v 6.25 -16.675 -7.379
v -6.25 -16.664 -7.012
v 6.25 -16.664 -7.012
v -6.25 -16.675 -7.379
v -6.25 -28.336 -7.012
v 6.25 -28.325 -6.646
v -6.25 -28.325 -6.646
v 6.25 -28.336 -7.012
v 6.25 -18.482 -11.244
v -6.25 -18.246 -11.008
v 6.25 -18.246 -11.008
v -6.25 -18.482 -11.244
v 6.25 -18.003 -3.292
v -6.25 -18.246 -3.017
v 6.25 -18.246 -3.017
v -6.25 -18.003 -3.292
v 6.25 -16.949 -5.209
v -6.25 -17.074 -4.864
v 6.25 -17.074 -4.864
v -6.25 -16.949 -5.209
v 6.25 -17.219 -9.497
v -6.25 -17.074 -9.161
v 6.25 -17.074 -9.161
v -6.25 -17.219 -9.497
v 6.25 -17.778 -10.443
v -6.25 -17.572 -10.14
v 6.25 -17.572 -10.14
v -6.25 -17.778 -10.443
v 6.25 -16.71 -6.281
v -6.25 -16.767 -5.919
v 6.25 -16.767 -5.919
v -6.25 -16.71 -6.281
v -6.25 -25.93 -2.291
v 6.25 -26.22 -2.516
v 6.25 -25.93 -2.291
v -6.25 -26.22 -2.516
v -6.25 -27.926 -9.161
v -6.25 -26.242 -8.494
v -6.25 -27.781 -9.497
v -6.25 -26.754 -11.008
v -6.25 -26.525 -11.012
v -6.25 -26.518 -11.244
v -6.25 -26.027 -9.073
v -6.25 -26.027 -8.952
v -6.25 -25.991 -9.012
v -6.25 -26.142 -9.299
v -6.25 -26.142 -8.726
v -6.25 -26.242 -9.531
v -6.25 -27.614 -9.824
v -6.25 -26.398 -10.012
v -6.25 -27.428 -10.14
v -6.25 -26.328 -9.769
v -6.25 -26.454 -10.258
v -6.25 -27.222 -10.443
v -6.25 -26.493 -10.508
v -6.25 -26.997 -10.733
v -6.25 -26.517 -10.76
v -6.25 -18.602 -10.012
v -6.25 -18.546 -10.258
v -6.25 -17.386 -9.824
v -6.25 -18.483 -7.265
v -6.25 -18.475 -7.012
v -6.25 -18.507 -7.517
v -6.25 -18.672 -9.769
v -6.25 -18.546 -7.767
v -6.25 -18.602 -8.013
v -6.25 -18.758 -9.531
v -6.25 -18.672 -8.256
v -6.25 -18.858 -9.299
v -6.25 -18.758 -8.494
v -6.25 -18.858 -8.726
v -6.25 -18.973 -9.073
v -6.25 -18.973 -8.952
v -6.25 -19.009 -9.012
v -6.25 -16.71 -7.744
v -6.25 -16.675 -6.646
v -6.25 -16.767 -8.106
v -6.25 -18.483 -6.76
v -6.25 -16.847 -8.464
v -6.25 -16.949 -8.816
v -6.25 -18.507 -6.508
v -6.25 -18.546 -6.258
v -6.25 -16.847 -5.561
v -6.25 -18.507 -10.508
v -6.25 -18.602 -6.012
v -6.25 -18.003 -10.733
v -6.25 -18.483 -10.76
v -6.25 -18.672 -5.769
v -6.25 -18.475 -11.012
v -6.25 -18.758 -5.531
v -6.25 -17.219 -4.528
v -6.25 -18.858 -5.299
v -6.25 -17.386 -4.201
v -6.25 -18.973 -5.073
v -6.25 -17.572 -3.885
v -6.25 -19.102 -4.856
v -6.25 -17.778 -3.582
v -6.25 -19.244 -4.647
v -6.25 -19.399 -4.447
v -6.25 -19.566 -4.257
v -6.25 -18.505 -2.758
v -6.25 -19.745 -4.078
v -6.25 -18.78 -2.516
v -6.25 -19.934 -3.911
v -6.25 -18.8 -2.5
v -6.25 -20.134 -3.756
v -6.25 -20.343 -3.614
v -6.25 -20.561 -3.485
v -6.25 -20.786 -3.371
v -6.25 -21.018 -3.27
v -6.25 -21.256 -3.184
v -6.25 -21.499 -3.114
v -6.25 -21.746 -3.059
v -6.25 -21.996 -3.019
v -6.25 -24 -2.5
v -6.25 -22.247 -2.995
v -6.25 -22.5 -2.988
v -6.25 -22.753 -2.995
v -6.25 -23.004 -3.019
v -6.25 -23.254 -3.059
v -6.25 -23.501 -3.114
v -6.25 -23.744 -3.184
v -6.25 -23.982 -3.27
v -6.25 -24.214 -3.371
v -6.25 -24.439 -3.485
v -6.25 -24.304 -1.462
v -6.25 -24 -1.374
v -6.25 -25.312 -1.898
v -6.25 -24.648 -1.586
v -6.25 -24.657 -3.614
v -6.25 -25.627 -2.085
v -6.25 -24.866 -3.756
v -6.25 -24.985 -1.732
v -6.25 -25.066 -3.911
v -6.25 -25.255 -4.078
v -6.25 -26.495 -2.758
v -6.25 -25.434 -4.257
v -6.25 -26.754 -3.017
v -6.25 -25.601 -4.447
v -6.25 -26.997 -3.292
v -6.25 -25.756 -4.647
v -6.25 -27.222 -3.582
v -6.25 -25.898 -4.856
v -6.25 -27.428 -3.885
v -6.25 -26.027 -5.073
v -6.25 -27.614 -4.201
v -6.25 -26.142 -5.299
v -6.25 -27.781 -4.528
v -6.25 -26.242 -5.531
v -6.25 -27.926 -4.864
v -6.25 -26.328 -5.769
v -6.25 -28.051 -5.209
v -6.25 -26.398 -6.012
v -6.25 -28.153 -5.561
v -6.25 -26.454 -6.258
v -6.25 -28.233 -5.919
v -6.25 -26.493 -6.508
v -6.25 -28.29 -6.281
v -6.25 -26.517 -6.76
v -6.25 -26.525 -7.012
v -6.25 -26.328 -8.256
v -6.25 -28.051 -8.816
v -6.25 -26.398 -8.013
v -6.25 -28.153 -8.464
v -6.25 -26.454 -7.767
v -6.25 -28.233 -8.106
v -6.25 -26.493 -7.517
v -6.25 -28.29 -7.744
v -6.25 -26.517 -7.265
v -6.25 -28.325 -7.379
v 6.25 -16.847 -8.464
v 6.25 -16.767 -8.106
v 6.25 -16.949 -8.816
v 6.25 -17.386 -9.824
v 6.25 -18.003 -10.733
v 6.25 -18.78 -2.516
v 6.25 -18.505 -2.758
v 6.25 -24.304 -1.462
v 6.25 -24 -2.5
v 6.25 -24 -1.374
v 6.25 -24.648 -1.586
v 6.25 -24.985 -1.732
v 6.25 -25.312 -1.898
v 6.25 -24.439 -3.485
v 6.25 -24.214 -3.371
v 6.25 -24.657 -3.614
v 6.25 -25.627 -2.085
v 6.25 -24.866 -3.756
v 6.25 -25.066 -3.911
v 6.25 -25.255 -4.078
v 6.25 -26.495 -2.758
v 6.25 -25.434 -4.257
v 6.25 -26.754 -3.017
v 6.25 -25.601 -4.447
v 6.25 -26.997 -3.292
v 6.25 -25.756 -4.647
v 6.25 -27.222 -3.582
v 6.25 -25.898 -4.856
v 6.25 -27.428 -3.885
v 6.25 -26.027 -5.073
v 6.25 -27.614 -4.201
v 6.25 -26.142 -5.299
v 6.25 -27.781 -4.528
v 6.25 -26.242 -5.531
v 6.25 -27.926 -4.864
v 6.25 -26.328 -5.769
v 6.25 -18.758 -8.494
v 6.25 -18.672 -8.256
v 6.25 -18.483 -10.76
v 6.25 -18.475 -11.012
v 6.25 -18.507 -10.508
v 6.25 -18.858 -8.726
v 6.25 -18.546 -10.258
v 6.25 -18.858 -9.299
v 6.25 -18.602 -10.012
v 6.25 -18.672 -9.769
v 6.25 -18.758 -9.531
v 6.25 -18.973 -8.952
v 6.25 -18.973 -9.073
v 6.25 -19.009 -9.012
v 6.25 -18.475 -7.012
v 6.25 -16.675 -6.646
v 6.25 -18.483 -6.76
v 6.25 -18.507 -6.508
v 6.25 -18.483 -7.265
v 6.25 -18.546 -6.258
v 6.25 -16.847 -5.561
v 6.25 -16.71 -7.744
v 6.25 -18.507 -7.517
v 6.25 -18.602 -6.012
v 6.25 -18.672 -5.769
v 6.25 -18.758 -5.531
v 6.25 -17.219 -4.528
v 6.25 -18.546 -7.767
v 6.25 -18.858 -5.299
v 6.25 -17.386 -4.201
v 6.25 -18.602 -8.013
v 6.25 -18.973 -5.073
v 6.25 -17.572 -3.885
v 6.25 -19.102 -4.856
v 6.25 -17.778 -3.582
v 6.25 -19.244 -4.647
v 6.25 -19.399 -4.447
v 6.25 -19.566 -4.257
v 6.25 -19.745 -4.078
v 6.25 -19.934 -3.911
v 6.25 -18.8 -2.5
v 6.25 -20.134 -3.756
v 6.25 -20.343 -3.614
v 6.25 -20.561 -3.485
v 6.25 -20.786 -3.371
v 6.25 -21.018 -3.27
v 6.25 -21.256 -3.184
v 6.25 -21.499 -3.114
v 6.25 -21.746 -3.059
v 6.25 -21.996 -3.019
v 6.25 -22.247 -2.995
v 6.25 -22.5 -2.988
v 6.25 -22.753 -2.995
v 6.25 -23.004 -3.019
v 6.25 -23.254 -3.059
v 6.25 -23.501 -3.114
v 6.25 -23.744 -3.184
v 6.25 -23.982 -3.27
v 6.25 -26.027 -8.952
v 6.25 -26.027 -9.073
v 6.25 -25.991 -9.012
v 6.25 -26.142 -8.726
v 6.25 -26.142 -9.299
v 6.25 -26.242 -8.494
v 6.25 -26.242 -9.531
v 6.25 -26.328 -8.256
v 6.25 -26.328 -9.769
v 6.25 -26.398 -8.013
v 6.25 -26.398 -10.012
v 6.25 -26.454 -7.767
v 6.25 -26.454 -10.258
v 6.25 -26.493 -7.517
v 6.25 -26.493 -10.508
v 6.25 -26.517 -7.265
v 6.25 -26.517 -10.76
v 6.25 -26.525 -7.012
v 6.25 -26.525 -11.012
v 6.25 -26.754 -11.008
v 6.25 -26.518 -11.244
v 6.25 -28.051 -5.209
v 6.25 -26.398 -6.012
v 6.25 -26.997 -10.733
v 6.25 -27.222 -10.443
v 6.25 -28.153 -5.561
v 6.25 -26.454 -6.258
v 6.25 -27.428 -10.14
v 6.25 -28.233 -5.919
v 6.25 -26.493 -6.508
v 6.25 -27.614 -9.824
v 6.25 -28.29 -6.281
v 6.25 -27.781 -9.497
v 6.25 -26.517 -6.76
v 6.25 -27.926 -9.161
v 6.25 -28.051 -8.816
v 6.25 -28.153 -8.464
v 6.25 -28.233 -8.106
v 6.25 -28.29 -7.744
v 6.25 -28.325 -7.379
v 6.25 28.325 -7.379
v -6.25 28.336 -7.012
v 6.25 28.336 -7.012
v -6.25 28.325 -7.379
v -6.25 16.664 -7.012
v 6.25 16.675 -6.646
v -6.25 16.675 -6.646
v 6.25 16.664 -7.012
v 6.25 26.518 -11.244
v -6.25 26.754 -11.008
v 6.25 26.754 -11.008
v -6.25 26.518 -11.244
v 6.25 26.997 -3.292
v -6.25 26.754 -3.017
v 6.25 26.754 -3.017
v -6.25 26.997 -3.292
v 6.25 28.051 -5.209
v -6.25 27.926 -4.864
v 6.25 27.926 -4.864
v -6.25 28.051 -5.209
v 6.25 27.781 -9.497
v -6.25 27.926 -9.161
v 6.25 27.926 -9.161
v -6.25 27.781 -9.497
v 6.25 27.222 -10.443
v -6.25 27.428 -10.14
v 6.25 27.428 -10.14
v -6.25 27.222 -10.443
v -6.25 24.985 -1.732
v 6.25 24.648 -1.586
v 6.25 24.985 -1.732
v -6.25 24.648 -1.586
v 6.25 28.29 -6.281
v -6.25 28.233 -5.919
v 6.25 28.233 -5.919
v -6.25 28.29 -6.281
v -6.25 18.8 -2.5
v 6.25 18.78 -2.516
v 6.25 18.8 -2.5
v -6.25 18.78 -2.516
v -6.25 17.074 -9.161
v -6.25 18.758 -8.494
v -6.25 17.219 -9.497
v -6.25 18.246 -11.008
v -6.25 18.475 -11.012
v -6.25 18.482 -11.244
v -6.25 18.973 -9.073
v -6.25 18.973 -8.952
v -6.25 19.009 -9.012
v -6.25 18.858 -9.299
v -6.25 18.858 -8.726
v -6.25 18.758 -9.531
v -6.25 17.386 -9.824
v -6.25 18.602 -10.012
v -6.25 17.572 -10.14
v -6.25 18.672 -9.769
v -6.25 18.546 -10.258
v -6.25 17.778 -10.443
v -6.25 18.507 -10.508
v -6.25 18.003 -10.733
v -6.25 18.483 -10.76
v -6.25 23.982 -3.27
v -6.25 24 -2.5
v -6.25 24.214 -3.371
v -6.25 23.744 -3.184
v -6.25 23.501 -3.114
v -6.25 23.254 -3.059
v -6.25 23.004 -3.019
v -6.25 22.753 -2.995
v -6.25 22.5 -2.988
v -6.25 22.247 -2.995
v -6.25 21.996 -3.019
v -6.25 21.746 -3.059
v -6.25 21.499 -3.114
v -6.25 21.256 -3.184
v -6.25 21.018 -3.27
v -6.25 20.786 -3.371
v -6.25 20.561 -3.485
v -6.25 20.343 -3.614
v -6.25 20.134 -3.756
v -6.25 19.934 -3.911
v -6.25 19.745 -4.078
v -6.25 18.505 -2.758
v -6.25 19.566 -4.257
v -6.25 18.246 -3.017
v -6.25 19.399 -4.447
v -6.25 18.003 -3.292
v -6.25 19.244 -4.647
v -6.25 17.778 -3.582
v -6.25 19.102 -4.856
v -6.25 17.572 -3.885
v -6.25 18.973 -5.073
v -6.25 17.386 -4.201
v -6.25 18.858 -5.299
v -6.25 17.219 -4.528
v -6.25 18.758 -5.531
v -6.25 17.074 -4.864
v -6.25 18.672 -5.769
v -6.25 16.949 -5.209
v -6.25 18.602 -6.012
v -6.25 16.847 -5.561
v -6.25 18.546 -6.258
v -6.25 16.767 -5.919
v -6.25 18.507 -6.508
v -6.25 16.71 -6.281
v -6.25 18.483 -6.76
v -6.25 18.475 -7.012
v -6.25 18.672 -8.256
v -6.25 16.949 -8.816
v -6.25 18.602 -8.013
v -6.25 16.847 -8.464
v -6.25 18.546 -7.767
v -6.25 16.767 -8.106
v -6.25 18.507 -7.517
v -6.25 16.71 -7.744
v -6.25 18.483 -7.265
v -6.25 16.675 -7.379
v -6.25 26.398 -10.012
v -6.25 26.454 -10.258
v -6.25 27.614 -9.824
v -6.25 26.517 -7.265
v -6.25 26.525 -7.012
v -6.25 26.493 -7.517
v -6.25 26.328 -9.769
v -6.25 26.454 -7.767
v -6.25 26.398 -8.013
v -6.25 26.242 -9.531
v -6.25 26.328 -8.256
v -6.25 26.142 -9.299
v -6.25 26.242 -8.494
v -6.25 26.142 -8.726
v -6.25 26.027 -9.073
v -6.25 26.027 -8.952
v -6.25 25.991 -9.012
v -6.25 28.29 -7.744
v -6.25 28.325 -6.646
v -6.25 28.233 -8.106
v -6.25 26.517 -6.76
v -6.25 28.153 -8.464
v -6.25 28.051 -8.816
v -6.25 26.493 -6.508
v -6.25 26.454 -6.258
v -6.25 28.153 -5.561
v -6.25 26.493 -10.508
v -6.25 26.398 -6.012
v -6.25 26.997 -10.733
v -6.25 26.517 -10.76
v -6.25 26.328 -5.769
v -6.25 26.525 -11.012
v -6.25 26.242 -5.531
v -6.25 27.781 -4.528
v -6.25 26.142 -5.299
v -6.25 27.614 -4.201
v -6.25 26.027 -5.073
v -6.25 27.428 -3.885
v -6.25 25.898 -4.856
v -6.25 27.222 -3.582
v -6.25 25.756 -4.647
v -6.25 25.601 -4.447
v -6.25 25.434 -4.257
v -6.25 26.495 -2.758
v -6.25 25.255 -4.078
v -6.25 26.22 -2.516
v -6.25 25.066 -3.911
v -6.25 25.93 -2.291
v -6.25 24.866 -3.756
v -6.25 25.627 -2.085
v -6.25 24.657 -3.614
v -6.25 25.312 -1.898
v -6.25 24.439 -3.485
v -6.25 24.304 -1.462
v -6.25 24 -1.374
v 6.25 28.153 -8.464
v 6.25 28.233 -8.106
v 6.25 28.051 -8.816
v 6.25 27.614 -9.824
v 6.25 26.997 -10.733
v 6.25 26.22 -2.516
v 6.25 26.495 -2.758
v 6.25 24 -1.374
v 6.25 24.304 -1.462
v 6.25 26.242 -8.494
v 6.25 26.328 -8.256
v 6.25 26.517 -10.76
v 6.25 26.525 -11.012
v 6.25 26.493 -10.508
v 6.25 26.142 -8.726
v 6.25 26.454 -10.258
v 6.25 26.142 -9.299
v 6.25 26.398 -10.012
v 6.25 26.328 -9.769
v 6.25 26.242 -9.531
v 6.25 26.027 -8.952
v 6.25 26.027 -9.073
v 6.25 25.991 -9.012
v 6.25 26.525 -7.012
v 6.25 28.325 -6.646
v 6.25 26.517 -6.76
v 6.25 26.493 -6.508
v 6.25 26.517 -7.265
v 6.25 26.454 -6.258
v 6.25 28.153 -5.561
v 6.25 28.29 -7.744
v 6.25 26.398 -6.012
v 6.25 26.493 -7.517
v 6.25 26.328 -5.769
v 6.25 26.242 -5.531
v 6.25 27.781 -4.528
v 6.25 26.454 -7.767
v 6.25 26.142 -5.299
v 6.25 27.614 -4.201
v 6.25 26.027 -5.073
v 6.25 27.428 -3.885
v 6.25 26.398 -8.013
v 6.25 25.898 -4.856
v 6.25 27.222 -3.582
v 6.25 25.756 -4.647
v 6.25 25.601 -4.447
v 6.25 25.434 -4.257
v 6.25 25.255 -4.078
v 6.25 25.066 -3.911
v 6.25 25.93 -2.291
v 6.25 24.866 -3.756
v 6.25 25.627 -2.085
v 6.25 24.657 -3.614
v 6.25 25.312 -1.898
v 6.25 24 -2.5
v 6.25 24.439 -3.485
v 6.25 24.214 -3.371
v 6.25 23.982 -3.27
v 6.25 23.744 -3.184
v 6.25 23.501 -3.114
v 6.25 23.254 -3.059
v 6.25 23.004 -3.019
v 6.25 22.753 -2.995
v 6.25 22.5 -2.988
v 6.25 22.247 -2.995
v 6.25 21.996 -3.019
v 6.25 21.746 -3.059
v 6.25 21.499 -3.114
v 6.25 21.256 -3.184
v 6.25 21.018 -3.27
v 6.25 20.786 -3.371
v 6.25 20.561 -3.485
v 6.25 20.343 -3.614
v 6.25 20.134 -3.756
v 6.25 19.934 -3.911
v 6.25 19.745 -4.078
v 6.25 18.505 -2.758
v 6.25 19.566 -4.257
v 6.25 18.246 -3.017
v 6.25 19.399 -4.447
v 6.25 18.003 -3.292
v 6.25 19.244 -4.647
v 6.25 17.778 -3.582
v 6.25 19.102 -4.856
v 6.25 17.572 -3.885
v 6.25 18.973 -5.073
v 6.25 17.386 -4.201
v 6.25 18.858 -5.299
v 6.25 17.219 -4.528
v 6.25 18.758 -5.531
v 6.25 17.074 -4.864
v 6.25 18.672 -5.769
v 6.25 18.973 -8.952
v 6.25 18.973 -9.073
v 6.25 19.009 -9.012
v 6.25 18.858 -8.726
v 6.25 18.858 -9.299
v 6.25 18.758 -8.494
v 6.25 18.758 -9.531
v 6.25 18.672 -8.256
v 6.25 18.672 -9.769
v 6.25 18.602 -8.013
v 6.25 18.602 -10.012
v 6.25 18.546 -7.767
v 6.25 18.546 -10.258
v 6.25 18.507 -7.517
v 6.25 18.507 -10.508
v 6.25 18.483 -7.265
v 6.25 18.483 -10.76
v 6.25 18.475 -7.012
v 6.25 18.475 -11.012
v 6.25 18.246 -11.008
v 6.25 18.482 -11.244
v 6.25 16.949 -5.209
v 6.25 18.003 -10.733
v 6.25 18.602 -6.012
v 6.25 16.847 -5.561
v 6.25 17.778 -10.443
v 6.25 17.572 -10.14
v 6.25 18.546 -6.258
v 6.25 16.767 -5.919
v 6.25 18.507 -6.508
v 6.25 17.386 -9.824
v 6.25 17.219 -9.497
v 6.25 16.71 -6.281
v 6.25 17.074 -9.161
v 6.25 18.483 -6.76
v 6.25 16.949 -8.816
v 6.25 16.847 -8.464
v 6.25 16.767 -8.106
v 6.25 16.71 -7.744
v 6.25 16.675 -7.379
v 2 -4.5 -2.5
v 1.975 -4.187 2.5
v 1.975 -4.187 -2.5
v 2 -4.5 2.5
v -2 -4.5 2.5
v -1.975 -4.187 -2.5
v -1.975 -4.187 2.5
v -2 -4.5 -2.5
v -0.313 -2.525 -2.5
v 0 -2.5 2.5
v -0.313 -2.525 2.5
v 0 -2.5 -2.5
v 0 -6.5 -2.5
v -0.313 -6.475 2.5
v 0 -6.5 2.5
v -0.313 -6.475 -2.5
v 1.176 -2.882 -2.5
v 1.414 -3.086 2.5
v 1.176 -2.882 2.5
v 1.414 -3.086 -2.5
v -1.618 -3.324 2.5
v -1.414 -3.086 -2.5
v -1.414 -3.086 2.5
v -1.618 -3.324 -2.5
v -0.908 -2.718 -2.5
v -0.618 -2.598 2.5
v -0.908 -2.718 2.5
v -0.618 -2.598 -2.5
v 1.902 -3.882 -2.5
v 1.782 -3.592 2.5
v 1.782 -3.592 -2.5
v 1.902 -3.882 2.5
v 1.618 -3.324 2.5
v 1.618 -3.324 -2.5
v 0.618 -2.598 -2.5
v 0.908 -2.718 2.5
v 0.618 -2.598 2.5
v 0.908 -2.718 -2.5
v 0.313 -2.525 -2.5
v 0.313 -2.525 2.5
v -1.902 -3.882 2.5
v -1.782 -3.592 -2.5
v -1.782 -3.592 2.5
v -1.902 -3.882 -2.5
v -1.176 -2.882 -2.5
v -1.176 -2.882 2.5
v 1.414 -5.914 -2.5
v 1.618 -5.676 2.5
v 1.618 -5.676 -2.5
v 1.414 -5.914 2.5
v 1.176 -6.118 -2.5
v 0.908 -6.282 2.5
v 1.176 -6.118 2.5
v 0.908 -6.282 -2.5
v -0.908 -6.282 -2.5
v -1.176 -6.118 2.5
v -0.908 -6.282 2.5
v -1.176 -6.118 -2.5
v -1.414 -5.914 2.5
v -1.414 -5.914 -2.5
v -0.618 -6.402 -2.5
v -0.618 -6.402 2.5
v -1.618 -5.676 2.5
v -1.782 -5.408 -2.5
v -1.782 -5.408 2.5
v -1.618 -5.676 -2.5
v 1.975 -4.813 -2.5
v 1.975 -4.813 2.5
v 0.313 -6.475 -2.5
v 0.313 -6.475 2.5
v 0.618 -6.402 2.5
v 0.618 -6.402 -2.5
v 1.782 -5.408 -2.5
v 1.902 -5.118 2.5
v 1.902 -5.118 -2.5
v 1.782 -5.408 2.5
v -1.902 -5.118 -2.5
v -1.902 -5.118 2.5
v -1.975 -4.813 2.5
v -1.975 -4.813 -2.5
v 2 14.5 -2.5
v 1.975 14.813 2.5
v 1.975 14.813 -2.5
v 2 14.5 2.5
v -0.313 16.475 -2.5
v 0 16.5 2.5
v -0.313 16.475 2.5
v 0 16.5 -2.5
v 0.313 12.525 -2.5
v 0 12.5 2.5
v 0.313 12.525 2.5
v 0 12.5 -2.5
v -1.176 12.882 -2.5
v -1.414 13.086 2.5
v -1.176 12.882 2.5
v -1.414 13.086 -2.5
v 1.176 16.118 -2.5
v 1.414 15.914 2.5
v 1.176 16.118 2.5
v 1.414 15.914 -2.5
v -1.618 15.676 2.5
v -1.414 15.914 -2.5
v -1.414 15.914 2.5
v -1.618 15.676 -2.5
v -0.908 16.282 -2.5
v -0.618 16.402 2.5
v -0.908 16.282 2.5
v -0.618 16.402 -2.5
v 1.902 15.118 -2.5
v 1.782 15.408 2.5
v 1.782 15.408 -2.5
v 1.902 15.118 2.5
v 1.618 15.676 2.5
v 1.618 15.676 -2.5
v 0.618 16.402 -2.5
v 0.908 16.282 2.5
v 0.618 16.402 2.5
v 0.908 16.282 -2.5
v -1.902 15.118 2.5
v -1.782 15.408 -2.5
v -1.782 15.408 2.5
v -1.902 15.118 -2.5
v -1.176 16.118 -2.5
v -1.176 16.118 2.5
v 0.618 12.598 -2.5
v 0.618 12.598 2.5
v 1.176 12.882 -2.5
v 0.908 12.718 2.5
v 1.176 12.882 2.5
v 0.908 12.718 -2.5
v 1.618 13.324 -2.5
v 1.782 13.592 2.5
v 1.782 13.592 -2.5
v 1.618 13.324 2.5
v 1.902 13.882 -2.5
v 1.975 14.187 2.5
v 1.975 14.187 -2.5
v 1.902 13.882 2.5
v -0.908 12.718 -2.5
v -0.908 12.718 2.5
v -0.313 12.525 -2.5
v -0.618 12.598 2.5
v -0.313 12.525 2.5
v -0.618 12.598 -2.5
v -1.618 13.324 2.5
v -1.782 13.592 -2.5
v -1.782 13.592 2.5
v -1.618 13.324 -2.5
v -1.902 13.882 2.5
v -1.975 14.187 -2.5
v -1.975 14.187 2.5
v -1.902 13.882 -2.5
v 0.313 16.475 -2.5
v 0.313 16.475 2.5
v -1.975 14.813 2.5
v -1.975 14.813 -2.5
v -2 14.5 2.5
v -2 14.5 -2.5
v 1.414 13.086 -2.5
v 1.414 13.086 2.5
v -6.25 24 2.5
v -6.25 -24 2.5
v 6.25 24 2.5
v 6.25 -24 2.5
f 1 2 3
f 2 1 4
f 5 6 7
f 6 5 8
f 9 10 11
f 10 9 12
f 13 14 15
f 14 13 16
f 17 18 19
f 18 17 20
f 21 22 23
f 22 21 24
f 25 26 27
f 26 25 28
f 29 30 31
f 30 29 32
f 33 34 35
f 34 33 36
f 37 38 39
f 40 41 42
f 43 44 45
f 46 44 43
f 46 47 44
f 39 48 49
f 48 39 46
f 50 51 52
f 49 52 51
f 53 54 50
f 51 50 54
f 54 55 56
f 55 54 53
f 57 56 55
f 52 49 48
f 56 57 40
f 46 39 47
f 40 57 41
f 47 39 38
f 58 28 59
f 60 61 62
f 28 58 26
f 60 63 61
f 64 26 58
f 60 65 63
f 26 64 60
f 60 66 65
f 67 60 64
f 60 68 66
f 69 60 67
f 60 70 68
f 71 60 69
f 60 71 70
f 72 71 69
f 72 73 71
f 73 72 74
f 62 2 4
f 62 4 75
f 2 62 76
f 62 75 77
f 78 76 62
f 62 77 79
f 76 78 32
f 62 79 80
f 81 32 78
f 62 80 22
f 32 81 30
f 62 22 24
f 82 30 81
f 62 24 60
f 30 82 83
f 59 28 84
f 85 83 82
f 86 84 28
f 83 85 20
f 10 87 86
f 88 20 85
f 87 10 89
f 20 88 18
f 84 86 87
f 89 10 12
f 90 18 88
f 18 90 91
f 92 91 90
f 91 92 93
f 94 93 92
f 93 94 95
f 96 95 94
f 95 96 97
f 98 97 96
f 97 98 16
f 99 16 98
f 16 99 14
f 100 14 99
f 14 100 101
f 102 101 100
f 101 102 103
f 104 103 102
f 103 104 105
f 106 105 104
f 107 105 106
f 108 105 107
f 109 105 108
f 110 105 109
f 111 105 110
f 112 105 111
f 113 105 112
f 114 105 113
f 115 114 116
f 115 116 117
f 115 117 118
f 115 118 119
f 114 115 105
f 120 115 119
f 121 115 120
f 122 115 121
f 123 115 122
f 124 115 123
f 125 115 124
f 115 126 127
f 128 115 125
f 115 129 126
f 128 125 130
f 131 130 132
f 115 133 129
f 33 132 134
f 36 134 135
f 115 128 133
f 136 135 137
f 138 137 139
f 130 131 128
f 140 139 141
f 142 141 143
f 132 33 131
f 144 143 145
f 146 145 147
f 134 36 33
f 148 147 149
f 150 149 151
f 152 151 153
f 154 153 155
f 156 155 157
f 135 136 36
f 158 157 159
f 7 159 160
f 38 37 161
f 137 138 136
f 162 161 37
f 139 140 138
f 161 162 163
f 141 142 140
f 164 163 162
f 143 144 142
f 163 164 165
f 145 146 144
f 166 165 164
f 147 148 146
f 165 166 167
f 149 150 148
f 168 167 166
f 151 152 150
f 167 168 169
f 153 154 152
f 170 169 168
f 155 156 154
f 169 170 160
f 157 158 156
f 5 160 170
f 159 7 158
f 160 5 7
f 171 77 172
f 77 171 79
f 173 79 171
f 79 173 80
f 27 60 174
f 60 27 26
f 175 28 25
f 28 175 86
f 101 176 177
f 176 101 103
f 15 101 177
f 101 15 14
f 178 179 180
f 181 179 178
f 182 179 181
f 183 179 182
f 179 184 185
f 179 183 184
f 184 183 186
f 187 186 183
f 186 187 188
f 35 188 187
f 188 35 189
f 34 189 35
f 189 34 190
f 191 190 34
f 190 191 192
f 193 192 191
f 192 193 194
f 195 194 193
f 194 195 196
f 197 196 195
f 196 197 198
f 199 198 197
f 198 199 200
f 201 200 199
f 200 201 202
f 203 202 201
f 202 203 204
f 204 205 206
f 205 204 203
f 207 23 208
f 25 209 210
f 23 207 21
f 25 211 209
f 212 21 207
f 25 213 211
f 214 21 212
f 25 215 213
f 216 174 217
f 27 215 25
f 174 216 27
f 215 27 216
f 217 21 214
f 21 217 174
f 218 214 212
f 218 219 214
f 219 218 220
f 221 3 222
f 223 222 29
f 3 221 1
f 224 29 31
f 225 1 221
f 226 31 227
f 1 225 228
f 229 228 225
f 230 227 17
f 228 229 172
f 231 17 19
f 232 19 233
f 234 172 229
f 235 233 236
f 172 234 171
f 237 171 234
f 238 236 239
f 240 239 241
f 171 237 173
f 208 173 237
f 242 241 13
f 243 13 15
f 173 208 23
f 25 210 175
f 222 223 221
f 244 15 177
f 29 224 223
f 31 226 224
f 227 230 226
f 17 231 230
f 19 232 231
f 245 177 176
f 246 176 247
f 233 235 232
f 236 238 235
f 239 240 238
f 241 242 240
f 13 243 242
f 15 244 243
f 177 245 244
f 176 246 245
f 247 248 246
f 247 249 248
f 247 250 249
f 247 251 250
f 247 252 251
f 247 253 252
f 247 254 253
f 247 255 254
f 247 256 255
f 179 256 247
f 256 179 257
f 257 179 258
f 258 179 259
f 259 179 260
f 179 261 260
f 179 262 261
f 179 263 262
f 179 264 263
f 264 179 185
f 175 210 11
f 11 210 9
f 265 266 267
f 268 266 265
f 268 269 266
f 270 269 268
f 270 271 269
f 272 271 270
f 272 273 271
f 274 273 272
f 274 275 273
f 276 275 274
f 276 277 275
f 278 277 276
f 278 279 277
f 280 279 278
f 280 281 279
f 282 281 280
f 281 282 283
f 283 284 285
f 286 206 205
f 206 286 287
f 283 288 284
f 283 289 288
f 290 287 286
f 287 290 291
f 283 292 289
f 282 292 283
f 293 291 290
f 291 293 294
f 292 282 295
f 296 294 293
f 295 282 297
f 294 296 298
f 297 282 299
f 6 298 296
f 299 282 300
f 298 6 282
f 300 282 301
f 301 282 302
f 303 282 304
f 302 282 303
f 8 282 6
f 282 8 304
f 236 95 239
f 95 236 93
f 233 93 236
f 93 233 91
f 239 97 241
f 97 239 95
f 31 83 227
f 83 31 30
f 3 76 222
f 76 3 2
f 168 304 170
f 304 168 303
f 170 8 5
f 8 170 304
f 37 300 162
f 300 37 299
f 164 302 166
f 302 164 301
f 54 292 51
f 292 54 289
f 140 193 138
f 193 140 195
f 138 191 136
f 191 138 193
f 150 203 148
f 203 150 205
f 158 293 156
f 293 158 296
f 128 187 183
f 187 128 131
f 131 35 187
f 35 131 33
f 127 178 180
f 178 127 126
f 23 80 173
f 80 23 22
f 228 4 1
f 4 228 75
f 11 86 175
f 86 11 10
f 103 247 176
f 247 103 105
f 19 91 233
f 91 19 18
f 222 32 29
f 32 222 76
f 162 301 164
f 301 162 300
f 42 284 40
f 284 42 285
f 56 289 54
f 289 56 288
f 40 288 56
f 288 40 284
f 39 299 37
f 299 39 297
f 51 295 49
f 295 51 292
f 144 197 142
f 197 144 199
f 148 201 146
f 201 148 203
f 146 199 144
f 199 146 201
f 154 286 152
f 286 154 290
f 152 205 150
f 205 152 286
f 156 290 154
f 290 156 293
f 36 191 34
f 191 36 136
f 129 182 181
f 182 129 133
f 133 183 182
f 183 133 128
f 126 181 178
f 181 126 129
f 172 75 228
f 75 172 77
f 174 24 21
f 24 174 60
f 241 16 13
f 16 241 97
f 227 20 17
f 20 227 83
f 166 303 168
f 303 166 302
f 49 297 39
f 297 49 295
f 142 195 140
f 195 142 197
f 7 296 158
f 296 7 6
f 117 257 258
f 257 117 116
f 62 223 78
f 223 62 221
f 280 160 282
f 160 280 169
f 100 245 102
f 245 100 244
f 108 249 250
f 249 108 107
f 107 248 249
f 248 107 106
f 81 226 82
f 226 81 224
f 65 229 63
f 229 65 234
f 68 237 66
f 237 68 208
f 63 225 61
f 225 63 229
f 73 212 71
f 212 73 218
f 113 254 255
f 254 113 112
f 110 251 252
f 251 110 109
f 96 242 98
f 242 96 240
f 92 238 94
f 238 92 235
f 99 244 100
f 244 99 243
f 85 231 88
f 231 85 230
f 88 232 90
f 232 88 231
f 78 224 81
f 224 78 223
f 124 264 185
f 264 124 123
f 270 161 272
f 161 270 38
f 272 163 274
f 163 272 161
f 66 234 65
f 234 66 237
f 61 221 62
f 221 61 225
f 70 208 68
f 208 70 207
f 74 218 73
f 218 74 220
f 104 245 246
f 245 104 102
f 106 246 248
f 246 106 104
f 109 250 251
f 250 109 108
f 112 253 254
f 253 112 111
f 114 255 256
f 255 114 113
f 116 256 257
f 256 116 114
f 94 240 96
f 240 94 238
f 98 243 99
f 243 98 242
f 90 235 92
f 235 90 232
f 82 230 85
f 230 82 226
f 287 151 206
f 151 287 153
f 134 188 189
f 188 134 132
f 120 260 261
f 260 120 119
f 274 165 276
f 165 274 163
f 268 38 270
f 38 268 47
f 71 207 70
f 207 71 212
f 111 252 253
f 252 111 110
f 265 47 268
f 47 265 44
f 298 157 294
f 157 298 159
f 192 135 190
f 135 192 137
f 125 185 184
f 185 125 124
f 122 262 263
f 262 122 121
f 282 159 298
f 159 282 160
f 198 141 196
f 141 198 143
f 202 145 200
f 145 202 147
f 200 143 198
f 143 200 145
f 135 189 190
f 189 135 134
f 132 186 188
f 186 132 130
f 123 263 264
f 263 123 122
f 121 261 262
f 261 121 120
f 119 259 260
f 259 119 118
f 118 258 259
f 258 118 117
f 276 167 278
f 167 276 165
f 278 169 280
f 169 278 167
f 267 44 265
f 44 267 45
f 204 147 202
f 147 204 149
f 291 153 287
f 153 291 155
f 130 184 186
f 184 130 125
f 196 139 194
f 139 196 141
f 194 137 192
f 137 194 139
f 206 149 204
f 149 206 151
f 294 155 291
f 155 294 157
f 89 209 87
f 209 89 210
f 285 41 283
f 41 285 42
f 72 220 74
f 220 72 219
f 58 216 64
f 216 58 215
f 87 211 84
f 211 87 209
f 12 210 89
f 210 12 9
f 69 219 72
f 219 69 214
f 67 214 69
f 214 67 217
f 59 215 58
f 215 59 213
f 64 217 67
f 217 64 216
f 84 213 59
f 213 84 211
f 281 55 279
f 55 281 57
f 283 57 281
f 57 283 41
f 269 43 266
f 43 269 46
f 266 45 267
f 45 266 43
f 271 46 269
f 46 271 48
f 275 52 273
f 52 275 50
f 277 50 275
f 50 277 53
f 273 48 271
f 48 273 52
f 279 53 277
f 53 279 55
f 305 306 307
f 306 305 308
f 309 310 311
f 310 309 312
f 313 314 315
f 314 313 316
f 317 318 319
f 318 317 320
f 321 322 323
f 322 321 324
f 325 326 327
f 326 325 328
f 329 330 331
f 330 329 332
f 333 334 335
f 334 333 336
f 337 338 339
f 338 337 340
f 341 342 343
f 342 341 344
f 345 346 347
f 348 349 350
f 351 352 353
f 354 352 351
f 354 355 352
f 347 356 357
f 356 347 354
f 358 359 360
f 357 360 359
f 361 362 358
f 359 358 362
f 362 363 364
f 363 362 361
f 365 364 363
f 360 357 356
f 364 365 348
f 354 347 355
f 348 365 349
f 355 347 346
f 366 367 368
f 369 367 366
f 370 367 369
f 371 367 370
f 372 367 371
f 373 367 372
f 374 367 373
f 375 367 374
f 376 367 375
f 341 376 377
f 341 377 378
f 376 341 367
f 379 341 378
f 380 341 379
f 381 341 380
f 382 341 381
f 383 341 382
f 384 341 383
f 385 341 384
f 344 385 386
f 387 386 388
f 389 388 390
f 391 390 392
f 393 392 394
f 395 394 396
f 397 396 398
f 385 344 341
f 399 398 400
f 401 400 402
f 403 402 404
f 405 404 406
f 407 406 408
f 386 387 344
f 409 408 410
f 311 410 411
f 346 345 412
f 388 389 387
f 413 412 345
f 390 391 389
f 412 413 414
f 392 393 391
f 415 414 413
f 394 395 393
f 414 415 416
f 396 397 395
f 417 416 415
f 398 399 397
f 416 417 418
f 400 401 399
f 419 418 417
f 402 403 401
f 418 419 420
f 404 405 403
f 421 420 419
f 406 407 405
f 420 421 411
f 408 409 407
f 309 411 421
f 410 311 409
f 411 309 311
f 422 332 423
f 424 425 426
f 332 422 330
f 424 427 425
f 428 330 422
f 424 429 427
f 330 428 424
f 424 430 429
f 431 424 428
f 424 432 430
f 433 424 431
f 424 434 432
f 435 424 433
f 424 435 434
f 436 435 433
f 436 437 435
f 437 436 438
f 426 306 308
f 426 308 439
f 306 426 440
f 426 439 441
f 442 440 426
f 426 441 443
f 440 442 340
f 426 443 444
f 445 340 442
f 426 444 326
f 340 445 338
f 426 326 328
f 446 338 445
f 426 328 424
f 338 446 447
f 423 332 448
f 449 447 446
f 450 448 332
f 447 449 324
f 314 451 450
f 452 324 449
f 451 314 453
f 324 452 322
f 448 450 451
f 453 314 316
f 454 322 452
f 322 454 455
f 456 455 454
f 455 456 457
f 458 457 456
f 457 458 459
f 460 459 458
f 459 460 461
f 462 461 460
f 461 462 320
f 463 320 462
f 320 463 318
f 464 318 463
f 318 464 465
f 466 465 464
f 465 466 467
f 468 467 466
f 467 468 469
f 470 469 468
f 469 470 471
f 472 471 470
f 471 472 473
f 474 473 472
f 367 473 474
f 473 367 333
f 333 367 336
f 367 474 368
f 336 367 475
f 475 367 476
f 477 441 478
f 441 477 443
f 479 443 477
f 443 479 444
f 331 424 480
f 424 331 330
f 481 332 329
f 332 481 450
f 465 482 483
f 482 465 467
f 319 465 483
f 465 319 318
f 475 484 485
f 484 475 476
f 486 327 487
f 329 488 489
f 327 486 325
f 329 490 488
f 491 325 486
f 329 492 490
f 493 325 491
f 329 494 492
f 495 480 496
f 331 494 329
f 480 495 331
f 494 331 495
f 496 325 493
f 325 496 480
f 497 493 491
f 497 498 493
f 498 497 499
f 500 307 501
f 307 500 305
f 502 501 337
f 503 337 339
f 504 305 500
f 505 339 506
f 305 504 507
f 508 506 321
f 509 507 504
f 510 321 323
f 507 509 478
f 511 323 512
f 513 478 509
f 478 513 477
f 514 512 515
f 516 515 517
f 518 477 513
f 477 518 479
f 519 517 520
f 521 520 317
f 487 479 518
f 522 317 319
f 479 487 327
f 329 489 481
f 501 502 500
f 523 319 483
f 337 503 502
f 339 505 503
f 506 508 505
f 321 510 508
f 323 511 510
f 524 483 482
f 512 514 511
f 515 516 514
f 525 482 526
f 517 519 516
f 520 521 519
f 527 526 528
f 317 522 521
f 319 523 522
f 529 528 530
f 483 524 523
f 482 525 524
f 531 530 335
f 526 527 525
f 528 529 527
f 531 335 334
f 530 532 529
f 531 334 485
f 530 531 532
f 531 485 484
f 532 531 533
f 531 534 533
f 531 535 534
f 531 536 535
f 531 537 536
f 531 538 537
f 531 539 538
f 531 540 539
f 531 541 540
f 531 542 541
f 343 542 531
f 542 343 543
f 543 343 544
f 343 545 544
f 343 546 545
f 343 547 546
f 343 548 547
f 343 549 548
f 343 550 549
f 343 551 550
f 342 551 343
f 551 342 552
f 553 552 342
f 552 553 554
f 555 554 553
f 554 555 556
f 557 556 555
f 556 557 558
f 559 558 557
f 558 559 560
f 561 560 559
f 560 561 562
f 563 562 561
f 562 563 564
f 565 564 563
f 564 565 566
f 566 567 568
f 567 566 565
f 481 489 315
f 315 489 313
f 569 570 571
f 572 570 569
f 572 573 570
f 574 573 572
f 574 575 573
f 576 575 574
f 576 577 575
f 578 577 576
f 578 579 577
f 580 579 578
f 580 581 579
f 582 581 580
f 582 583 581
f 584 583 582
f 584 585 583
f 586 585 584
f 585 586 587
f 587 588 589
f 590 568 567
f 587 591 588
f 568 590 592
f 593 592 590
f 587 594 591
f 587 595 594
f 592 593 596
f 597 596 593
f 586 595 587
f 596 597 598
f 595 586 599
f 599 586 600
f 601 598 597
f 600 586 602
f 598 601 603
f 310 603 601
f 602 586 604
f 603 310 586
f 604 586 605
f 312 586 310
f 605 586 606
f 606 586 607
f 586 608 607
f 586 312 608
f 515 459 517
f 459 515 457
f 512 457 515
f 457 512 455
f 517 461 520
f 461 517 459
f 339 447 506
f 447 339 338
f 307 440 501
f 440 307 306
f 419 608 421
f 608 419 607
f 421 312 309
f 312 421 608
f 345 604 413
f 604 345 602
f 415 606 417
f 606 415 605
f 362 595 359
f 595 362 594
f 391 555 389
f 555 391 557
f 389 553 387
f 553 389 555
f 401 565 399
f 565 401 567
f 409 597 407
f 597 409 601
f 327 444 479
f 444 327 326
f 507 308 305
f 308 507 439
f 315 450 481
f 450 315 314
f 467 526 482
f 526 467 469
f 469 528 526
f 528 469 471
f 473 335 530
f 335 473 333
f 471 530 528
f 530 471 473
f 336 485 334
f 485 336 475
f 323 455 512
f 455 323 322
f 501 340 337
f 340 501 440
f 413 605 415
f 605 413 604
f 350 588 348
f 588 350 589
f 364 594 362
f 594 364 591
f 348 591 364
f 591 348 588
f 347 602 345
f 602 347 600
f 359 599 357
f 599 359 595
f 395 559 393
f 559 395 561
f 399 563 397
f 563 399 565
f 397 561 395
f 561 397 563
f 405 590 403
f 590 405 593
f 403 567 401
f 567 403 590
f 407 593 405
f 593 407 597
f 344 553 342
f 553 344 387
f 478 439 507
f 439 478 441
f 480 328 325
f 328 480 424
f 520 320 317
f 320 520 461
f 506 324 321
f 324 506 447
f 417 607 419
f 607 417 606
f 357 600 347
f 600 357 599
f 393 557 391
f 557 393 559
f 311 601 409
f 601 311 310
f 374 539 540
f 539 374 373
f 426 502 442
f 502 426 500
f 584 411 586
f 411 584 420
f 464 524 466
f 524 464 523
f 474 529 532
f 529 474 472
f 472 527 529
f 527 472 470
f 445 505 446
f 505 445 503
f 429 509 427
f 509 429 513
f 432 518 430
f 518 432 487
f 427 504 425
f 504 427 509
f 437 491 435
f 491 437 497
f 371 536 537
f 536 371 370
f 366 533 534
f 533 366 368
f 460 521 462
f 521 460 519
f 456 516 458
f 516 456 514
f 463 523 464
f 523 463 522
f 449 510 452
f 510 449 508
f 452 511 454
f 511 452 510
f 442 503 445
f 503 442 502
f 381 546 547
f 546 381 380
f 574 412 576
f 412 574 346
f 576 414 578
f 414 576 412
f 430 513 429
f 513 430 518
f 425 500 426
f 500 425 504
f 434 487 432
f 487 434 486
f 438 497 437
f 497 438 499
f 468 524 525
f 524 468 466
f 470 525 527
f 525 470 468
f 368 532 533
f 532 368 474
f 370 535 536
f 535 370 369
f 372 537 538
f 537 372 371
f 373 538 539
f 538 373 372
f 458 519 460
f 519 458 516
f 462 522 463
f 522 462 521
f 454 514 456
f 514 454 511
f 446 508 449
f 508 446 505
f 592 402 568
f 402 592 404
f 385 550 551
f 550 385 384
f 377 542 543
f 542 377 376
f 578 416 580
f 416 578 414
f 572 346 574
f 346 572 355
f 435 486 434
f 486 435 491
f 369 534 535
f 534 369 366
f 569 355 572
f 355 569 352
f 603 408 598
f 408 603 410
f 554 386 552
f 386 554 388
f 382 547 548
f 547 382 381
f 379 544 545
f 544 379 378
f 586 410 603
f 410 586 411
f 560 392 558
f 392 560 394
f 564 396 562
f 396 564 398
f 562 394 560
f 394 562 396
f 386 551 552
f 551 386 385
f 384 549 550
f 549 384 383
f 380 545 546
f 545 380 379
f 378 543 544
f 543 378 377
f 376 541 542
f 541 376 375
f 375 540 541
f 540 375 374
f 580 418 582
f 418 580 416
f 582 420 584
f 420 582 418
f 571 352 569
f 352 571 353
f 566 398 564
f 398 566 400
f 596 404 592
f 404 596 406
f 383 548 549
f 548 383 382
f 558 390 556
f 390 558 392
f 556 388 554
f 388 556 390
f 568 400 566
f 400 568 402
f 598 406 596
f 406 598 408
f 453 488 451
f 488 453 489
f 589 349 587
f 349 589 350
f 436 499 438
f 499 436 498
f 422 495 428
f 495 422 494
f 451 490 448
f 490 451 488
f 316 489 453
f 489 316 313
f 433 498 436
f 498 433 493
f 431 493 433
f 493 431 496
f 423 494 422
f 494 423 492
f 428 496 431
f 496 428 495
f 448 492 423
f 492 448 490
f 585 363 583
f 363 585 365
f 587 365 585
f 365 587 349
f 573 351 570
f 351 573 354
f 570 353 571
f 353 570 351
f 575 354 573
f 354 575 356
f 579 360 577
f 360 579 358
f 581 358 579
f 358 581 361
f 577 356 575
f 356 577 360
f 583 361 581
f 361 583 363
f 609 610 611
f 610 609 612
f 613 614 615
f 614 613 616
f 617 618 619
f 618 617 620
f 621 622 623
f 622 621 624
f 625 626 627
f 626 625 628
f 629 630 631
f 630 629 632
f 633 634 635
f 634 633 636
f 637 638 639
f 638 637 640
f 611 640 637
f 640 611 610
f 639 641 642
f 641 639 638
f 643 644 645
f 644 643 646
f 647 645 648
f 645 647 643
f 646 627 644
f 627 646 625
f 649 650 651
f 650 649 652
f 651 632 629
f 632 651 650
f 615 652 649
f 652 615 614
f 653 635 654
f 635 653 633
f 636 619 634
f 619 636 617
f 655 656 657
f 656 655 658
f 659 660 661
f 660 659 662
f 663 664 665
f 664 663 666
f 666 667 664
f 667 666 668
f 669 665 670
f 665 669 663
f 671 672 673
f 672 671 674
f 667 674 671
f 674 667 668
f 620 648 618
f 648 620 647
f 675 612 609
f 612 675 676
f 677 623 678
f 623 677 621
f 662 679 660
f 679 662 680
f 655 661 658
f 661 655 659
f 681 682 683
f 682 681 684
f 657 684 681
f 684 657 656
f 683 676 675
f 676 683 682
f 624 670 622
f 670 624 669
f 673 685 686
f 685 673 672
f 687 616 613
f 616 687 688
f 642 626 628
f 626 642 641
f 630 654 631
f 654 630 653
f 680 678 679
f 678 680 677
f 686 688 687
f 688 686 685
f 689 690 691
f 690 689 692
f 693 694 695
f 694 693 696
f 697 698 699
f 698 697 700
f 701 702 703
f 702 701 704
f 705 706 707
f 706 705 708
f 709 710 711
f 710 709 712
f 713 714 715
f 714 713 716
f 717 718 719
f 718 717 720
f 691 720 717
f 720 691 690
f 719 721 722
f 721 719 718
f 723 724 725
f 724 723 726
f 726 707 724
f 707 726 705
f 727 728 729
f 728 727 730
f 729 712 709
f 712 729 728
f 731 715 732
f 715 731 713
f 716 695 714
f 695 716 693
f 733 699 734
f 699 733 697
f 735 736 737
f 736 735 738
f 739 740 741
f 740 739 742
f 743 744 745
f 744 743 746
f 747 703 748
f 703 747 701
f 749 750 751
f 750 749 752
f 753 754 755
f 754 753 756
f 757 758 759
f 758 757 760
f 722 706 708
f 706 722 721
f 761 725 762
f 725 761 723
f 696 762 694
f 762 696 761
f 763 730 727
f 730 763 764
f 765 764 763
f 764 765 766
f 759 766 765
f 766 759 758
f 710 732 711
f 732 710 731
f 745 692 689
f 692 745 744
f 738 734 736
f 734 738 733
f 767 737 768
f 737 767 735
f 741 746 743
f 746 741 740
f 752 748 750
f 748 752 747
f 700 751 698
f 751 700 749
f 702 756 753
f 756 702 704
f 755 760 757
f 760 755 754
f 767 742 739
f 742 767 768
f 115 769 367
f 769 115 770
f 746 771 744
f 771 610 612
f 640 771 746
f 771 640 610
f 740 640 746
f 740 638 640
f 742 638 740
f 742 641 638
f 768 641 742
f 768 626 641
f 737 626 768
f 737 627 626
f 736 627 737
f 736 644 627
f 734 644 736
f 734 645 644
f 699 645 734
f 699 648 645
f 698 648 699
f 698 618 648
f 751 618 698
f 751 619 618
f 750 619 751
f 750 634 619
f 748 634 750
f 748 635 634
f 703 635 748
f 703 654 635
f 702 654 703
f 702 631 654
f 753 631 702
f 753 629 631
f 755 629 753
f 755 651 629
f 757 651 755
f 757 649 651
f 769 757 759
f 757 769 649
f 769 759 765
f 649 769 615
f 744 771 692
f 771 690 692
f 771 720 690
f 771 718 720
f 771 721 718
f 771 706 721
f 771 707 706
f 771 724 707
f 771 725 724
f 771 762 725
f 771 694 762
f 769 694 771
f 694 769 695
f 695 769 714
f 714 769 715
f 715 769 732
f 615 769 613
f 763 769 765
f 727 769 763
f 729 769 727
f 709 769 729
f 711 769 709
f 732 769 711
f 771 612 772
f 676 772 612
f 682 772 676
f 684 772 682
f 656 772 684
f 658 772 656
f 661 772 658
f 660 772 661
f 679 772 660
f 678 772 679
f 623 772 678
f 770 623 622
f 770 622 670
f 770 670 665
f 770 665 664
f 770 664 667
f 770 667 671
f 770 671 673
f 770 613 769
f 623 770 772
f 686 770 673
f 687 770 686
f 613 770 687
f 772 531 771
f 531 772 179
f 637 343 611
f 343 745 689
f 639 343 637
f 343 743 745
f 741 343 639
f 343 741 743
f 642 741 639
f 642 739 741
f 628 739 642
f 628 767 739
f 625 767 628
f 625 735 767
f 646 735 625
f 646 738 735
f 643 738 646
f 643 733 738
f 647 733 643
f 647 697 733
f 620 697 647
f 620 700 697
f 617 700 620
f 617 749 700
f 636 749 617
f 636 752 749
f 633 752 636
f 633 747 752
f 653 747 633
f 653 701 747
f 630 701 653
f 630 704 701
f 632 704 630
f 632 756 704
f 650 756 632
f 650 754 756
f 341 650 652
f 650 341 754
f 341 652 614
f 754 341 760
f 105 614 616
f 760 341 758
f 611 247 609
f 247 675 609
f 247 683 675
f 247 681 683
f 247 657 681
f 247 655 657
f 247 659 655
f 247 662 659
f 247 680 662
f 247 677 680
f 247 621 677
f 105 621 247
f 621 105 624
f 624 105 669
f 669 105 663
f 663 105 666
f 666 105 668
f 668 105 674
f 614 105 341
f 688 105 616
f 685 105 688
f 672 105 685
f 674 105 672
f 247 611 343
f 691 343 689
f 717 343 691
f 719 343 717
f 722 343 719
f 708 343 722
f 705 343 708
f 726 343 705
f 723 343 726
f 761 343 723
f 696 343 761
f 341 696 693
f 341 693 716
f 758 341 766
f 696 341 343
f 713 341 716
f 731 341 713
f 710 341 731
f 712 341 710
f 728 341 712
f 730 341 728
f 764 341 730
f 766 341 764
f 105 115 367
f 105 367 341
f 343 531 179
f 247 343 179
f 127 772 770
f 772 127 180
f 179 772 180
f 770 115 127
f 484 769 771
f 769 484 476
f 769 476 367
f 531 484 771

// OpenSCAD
// Prusa i3 X enstop mount

use <MCAD/boxes.scad>;

module xEndstopMount(rodDiam = 8.05, rodSep = 45, endstopHoleSep = 19){
    width = 12.5;
    height = 48;
    thickness = 5;
    
    union(){
        for(x=[-1, 1]){
            translate([0,x*(rodSep/2),-(thickness+rodDiam/4)]) rotate([90,90,90]) difference(){
                cylinder(d=rodDiam*1.45,h=width,$fn=100,center=true);
                cylinder(d=rodDiam,h=width*2,$fn=100,center=true);
                translate([4,0,0]) cylinder(d=rodDiam,h=width*2,$fn=100,center=true);
            }
        }
        difference(){
            cube([width,height,thickness],center=true);
            
            translate([0,5,0]) for(a = [-1, 1]){
                translate([0,a*(endstopHoleSep/2),0]) cylinder(d=4,h=thickness*1.01,$fn=40,center=true);
             }
            
        }
    }
}
xEndstopMount();
